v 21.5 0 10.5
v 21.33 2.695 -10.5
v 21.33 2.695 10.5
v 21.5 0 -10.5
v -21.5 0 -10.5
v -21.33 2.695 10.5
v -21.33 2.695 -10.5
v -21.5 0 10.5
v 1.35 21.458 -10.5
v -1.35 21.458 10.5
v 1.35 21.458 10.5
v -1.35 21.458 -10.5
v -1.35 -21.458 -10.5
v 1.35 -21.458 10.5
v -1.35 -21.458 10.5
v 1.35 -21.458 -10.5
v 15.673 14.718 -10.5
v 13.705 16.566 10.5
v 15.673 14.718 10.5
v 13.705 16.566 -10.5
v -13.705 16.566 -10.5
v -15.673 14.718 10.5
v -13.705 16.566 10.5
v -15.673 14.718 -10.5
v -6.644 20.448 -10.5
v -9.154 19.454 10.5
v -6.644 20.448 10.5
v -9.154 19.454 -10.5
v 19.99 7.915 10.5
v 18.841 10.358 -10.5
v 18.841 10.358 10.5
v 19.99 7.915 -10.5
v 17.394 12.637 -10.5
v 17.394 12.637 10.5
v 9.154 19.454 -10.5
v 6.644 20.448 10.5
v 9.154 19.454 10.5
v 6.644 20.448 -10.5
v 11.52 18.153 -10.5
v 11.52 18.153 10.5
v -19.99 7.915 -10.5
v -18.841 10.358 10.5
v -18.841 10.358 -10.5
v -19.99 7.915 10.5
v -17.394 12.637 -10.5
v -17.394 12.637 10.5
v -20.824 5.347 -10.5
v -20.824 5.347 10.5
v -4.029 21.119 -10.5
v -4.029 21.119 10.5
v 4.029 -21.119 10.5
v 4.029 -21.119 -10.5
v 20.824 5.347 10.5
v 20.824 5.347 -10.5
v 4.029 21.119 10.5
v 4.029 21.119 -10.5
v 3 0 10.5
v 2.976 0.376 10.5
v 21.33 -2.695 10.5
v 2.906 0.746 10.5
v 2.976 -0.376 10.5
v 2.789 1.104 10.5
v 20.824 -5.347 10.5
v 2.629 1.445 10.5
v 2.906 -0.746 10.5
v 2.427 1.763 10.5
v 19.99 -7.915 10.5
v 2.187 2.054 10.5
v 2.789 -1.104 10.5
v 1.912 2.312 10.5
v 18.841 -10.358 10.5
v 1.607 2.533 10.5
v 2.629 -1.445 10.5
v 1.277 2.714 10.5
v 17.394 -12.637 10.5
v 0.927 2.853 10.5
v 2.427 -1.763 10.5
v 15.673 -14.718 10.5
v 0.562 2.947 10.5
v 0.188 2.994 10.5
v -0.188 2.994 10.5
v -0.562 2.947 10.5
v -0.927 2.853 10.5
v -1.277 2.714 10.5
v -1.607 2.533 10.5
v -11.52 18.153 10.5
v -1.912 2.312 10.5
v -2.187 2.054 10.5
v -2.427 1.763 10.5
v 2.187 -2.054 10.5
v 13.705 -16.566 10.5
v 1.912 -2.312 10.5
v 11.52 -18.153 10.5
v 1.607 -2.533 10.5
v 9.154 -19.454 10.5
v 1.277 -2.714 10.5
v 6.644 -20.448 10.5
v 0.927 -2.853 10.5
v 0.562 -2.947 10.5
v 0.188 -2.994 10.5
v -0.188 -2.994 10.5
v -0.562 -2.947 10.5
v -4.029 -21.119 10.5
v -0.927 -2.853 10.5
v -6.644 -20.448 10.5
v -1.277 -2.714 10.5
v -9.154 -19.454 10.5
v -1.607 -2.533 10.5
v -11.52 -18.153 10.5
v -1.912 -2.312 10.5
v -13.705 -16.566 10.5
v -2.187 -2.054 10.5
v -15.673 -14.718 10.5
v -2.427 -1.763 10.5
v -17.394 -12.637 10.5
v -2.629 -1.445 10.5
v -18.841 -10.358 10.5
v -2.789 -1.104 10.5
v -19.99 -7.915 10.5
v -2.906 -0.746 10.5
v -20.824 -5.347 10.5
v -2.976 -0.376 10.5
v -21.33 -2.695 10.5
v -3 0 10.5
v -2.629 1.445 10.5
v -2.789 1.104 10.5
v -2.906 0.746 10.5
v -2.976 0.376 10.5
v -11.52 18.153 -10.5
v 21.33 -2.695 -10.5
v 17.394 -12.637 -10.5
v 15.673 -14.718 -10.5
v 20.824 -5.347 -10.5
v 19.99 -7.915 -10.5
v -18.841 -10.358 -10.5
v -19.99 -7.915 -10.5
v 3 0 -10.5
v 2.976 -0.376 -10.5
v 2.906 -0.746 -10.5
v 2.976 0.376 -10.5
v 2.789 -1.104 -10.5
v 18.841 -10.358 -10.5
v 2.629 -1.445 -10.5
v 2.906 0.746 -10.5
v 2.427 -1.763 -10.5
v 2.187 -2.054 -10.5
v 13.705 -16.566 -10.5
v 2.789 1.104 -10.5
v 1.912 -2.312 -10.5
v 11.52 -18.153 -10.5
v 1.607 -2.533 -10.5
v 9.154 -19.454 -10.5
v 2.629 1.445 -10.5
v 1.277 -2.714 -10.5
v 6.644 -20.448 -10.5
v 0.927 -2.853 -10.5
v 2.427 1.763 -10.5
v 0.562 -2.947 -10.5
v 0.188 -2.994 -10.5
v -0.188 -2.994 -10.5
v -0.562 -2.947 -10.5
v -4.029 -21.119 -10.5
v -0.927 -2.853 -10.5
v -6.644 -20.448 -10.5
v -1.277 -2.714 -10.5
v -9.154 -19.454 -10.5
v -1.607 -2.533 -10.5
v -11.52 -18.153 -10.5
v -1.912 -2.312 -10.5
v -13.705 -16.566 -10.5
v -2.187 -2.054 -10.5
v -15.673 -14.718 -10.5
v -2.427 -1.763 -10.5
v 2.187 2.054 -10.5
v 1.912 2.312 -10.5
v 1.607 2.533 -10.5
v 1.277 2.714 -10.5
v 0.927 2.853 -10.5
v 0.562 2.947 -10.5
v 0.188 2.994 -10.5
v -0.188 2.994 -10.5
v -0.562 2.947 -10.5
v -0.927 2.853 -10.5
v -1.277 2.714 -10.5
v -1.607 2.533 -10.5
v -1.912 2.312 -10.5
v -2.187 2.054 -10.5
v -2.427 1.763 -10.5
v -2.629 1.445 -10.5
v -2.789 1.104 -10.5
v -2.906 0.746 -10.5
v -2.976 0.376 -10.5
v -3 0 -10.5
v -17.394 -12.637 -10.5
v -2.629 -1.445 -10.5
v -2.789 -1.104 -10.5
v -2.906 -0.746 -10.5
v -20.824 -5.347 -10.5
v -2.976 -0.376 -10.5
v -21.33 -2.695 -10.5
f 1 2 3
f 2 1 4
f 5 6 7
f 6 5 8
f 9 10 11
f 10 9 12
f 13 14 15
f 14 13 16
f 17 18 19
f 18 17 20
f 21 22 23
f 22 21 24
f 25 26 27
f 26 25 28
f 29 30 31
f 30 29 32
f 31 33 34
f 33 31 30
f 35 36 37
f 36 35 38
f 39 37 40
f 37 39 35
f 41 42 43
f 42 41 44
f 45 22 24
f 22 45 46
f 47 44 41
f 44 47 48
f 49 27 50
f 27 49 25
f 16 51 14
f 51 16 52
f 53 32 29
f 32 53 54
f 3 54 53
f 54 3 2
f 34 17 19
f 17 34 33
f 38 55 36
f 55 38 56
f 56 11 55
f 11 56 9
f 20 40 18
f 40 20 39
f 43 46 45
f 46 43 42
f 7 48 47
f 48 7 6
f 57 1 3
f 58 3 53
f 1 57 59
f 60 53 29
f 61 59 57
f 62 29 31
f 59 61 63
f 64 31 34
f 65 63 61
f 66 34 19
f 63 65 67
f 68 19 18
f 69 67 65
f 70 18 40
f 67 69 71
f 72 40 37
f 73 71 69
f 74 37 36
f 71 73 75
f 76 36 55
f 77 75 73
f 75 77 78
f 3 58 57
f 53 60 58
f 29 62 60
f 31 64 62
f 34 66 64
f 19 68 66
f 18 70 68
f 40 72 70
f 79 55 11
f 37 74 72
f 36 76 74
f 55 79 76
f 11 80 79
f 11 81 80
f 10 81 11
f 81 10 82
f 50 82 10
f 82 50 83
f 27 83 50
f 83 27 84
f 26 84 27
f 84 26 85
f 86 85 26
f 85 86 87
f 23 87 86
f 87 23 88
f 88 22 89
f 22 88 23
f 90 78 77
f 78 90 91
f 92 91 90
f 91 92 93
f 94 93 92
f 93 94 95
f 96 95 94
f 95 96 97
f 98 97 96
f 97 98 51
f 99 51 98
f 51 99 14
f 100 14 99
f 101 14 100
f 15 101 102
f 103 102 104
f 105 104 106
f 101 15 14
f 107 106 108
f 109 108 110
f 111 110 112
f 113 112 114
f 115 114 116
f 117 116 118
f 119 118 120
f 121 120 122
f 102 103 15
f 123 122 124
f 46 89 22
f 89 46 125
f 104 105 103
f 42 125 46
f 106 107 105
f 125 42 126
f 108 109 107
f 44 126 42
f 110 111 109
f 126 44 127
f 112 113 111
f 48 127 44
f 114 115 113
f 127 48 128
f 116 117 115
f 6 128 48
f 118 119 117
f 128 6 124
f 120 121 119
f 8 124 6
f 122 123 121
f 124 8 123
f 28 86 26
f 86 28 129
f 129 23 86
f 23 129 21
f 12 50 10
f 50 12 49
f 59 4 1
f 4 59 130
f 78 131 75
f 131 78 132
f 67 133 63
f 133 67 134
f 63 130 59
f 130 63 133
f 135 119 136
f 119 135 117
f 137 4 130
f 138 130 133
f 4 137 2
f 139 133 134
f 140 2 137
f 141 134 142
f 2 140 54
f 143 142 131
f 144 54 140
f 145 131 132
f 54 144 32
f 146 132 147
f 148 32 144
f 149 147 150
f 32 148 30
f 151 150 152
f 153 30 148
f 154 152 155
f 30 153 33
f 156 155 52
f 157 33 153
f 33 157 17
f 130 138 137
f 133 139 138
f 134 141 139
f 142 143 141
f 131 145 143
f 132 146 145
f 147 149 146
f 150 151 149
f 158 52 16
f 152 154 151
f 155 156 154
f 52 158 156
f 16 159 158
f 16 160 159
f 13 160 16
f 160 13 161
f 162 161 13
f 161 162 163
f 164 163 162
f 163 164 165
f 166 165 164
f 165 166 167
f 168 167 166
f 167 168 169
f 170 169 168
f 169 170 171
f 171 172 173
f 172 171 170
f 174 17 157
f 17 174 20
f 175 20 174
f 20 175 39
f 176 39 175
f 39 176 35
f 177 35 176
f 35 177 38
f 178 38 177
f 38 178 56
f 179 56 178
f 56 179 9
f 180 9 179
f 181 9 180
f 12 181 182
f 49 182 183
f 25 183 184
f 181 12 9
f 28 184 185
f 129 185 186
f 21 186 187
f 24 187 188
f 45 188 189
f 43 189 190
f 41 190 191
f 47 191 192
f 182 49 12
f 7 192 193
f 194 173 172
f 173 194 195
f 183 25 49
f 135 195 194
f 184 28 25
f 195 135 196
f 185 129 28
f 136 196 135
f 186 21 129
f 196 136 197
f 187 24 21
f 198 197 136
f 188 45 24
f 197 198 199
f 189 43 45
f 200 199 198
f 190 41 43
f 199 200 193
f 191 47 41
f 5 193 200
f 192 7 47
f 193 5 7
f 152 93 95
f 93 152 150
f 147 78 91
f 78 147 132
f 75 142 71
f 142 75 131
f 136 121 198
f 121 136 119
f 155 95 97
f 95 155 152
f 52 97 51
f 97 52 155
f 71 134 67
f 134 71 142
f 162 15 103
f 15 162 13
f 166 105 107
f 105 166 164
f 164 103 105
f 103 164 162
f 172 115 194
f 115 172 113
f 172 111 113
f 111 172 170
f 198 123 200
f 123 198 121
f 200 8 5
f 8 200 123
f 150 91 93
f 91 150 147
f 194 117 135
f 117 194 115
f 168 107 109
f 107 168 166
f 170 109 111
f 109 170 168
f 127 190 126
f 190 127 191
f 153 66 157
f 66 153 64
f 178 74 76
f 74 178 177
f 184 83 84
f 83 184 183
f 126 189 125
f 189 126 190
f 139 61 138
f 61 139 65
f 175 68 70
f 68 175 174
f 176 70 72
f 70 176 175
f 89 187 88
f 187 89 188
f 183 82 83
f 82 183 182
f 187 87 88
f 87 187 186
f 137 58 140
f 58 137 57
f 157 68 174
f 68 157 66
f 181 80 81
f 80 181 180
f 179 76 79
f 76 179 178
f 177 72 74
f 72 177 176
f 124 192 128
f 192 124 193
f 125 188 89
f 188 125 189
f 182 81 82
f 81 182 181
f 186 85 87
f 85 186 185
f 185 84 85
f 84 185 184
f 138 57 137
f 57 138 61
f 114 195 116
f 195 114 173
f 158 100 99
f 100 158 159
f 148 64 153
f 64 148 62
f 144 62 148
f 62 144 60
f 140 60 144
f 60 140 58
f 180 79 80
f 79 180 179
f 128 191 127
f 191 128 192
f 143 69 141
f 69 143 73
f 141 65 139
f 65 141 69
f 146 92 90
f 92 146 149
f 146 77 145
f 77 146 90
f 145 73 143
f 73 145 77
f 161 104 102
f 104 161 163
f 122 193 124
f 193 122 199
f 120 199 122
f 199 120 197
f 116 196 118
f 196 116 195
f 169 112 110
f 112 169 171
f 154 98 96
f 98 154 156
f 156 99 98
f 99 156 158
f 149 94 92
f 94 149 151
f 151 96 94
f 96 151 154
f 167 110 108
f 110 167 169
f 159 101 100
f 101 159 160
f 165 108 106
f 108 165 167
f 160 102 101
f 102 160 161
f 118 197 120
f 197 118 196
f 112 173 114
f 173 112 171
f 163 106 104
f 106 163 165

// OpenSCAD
$fn = 50;


difference() {
	union() {
		translate(v = [0, 0, -10.5000000000]) {
			cylinder(h = 21, r = 21.5000000000);
		}
	}
	union() {
		translate(v = [0, 0, -100.0000000000]) {
			cylinder(h = 200, r = 3);
		}
	}
}
